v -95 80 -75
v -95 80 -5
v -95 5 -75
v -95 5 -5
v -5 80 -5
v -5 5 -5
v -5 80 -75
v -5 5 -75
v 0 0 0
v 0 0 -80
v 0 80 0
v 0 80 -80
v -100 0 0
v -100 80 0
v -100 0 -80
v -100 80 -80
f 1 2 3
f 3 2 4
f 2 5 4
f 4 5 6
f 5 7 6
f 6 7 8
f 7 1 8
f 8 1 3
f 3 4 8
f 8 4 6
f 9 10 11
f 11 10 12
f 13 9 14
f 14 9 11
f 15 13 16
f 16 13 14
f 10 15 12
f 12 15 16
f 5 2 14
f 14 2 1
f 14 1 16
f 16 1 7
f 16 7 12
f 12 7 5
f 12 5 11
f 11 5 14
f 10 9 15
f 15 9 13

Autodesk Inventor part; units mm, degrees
ref_plane "YZ Plane" through (0, 0, 0) normal (1, 0, 0) x (0, 1, 0)
ref_plane "XZ Plane" through (0, 0, 0) normal (0, 1, 0) x (-1, 0, 0)
ref_plane "XY Plane" through (0, 0, 0) normal (0, 0, 1) x (1, 0, 0)
sketch "草圖1" plane through (0, 0, 0) normal (0, 1, 0) x (-1, 0, 0)
  point P0 (0, 0)
sketch "草圖2" plane through (0, 0, 0) normal (0, 1, 0) x (-1, 0, 0)
  line L0 (0, 0) -> (100, 0)
  line L1 (100, 0) -> (100, -80)
  line L2 (100, -80) -> (0, -80)
  line L3 (0, -80) -> (0, 0)
  dimension "d0" = 100
  dimension "d1" = 80
extrude "擠出1" add sketch "草圖2" along normal blind 80
sketch "草圖3" plane through (0, 80, 0) normal (0, 1, 0) x (1, 0, 0)
  line L0 (-5, 5) -> (-95, 5)
  line L1 (-95, 5) -> (-95, 75)
  line L2 (-95, 75) -> (-5, 75)
  line L3 (-5, 75) -> (-5, 5)
  line L4 (-100, 80) -> (-100, 0) projected
  line L5 (0, 0) -> (0, 80) projected
  line L6 (-100, 0) -> (0, 0) projected
  line L7 (0, 80) -> (-100, 80) projected
  point P0 (-50, 75)
  dimension "d4" = 5
  dimension "d5" = 5
  dimension "d6" = 5
  dimension "d7" = 5
extrude "擠出2" cut sketch "草圖3" against normal blind 75 contours L0 L1 L2 L3
properties part number "MoneyCase"
